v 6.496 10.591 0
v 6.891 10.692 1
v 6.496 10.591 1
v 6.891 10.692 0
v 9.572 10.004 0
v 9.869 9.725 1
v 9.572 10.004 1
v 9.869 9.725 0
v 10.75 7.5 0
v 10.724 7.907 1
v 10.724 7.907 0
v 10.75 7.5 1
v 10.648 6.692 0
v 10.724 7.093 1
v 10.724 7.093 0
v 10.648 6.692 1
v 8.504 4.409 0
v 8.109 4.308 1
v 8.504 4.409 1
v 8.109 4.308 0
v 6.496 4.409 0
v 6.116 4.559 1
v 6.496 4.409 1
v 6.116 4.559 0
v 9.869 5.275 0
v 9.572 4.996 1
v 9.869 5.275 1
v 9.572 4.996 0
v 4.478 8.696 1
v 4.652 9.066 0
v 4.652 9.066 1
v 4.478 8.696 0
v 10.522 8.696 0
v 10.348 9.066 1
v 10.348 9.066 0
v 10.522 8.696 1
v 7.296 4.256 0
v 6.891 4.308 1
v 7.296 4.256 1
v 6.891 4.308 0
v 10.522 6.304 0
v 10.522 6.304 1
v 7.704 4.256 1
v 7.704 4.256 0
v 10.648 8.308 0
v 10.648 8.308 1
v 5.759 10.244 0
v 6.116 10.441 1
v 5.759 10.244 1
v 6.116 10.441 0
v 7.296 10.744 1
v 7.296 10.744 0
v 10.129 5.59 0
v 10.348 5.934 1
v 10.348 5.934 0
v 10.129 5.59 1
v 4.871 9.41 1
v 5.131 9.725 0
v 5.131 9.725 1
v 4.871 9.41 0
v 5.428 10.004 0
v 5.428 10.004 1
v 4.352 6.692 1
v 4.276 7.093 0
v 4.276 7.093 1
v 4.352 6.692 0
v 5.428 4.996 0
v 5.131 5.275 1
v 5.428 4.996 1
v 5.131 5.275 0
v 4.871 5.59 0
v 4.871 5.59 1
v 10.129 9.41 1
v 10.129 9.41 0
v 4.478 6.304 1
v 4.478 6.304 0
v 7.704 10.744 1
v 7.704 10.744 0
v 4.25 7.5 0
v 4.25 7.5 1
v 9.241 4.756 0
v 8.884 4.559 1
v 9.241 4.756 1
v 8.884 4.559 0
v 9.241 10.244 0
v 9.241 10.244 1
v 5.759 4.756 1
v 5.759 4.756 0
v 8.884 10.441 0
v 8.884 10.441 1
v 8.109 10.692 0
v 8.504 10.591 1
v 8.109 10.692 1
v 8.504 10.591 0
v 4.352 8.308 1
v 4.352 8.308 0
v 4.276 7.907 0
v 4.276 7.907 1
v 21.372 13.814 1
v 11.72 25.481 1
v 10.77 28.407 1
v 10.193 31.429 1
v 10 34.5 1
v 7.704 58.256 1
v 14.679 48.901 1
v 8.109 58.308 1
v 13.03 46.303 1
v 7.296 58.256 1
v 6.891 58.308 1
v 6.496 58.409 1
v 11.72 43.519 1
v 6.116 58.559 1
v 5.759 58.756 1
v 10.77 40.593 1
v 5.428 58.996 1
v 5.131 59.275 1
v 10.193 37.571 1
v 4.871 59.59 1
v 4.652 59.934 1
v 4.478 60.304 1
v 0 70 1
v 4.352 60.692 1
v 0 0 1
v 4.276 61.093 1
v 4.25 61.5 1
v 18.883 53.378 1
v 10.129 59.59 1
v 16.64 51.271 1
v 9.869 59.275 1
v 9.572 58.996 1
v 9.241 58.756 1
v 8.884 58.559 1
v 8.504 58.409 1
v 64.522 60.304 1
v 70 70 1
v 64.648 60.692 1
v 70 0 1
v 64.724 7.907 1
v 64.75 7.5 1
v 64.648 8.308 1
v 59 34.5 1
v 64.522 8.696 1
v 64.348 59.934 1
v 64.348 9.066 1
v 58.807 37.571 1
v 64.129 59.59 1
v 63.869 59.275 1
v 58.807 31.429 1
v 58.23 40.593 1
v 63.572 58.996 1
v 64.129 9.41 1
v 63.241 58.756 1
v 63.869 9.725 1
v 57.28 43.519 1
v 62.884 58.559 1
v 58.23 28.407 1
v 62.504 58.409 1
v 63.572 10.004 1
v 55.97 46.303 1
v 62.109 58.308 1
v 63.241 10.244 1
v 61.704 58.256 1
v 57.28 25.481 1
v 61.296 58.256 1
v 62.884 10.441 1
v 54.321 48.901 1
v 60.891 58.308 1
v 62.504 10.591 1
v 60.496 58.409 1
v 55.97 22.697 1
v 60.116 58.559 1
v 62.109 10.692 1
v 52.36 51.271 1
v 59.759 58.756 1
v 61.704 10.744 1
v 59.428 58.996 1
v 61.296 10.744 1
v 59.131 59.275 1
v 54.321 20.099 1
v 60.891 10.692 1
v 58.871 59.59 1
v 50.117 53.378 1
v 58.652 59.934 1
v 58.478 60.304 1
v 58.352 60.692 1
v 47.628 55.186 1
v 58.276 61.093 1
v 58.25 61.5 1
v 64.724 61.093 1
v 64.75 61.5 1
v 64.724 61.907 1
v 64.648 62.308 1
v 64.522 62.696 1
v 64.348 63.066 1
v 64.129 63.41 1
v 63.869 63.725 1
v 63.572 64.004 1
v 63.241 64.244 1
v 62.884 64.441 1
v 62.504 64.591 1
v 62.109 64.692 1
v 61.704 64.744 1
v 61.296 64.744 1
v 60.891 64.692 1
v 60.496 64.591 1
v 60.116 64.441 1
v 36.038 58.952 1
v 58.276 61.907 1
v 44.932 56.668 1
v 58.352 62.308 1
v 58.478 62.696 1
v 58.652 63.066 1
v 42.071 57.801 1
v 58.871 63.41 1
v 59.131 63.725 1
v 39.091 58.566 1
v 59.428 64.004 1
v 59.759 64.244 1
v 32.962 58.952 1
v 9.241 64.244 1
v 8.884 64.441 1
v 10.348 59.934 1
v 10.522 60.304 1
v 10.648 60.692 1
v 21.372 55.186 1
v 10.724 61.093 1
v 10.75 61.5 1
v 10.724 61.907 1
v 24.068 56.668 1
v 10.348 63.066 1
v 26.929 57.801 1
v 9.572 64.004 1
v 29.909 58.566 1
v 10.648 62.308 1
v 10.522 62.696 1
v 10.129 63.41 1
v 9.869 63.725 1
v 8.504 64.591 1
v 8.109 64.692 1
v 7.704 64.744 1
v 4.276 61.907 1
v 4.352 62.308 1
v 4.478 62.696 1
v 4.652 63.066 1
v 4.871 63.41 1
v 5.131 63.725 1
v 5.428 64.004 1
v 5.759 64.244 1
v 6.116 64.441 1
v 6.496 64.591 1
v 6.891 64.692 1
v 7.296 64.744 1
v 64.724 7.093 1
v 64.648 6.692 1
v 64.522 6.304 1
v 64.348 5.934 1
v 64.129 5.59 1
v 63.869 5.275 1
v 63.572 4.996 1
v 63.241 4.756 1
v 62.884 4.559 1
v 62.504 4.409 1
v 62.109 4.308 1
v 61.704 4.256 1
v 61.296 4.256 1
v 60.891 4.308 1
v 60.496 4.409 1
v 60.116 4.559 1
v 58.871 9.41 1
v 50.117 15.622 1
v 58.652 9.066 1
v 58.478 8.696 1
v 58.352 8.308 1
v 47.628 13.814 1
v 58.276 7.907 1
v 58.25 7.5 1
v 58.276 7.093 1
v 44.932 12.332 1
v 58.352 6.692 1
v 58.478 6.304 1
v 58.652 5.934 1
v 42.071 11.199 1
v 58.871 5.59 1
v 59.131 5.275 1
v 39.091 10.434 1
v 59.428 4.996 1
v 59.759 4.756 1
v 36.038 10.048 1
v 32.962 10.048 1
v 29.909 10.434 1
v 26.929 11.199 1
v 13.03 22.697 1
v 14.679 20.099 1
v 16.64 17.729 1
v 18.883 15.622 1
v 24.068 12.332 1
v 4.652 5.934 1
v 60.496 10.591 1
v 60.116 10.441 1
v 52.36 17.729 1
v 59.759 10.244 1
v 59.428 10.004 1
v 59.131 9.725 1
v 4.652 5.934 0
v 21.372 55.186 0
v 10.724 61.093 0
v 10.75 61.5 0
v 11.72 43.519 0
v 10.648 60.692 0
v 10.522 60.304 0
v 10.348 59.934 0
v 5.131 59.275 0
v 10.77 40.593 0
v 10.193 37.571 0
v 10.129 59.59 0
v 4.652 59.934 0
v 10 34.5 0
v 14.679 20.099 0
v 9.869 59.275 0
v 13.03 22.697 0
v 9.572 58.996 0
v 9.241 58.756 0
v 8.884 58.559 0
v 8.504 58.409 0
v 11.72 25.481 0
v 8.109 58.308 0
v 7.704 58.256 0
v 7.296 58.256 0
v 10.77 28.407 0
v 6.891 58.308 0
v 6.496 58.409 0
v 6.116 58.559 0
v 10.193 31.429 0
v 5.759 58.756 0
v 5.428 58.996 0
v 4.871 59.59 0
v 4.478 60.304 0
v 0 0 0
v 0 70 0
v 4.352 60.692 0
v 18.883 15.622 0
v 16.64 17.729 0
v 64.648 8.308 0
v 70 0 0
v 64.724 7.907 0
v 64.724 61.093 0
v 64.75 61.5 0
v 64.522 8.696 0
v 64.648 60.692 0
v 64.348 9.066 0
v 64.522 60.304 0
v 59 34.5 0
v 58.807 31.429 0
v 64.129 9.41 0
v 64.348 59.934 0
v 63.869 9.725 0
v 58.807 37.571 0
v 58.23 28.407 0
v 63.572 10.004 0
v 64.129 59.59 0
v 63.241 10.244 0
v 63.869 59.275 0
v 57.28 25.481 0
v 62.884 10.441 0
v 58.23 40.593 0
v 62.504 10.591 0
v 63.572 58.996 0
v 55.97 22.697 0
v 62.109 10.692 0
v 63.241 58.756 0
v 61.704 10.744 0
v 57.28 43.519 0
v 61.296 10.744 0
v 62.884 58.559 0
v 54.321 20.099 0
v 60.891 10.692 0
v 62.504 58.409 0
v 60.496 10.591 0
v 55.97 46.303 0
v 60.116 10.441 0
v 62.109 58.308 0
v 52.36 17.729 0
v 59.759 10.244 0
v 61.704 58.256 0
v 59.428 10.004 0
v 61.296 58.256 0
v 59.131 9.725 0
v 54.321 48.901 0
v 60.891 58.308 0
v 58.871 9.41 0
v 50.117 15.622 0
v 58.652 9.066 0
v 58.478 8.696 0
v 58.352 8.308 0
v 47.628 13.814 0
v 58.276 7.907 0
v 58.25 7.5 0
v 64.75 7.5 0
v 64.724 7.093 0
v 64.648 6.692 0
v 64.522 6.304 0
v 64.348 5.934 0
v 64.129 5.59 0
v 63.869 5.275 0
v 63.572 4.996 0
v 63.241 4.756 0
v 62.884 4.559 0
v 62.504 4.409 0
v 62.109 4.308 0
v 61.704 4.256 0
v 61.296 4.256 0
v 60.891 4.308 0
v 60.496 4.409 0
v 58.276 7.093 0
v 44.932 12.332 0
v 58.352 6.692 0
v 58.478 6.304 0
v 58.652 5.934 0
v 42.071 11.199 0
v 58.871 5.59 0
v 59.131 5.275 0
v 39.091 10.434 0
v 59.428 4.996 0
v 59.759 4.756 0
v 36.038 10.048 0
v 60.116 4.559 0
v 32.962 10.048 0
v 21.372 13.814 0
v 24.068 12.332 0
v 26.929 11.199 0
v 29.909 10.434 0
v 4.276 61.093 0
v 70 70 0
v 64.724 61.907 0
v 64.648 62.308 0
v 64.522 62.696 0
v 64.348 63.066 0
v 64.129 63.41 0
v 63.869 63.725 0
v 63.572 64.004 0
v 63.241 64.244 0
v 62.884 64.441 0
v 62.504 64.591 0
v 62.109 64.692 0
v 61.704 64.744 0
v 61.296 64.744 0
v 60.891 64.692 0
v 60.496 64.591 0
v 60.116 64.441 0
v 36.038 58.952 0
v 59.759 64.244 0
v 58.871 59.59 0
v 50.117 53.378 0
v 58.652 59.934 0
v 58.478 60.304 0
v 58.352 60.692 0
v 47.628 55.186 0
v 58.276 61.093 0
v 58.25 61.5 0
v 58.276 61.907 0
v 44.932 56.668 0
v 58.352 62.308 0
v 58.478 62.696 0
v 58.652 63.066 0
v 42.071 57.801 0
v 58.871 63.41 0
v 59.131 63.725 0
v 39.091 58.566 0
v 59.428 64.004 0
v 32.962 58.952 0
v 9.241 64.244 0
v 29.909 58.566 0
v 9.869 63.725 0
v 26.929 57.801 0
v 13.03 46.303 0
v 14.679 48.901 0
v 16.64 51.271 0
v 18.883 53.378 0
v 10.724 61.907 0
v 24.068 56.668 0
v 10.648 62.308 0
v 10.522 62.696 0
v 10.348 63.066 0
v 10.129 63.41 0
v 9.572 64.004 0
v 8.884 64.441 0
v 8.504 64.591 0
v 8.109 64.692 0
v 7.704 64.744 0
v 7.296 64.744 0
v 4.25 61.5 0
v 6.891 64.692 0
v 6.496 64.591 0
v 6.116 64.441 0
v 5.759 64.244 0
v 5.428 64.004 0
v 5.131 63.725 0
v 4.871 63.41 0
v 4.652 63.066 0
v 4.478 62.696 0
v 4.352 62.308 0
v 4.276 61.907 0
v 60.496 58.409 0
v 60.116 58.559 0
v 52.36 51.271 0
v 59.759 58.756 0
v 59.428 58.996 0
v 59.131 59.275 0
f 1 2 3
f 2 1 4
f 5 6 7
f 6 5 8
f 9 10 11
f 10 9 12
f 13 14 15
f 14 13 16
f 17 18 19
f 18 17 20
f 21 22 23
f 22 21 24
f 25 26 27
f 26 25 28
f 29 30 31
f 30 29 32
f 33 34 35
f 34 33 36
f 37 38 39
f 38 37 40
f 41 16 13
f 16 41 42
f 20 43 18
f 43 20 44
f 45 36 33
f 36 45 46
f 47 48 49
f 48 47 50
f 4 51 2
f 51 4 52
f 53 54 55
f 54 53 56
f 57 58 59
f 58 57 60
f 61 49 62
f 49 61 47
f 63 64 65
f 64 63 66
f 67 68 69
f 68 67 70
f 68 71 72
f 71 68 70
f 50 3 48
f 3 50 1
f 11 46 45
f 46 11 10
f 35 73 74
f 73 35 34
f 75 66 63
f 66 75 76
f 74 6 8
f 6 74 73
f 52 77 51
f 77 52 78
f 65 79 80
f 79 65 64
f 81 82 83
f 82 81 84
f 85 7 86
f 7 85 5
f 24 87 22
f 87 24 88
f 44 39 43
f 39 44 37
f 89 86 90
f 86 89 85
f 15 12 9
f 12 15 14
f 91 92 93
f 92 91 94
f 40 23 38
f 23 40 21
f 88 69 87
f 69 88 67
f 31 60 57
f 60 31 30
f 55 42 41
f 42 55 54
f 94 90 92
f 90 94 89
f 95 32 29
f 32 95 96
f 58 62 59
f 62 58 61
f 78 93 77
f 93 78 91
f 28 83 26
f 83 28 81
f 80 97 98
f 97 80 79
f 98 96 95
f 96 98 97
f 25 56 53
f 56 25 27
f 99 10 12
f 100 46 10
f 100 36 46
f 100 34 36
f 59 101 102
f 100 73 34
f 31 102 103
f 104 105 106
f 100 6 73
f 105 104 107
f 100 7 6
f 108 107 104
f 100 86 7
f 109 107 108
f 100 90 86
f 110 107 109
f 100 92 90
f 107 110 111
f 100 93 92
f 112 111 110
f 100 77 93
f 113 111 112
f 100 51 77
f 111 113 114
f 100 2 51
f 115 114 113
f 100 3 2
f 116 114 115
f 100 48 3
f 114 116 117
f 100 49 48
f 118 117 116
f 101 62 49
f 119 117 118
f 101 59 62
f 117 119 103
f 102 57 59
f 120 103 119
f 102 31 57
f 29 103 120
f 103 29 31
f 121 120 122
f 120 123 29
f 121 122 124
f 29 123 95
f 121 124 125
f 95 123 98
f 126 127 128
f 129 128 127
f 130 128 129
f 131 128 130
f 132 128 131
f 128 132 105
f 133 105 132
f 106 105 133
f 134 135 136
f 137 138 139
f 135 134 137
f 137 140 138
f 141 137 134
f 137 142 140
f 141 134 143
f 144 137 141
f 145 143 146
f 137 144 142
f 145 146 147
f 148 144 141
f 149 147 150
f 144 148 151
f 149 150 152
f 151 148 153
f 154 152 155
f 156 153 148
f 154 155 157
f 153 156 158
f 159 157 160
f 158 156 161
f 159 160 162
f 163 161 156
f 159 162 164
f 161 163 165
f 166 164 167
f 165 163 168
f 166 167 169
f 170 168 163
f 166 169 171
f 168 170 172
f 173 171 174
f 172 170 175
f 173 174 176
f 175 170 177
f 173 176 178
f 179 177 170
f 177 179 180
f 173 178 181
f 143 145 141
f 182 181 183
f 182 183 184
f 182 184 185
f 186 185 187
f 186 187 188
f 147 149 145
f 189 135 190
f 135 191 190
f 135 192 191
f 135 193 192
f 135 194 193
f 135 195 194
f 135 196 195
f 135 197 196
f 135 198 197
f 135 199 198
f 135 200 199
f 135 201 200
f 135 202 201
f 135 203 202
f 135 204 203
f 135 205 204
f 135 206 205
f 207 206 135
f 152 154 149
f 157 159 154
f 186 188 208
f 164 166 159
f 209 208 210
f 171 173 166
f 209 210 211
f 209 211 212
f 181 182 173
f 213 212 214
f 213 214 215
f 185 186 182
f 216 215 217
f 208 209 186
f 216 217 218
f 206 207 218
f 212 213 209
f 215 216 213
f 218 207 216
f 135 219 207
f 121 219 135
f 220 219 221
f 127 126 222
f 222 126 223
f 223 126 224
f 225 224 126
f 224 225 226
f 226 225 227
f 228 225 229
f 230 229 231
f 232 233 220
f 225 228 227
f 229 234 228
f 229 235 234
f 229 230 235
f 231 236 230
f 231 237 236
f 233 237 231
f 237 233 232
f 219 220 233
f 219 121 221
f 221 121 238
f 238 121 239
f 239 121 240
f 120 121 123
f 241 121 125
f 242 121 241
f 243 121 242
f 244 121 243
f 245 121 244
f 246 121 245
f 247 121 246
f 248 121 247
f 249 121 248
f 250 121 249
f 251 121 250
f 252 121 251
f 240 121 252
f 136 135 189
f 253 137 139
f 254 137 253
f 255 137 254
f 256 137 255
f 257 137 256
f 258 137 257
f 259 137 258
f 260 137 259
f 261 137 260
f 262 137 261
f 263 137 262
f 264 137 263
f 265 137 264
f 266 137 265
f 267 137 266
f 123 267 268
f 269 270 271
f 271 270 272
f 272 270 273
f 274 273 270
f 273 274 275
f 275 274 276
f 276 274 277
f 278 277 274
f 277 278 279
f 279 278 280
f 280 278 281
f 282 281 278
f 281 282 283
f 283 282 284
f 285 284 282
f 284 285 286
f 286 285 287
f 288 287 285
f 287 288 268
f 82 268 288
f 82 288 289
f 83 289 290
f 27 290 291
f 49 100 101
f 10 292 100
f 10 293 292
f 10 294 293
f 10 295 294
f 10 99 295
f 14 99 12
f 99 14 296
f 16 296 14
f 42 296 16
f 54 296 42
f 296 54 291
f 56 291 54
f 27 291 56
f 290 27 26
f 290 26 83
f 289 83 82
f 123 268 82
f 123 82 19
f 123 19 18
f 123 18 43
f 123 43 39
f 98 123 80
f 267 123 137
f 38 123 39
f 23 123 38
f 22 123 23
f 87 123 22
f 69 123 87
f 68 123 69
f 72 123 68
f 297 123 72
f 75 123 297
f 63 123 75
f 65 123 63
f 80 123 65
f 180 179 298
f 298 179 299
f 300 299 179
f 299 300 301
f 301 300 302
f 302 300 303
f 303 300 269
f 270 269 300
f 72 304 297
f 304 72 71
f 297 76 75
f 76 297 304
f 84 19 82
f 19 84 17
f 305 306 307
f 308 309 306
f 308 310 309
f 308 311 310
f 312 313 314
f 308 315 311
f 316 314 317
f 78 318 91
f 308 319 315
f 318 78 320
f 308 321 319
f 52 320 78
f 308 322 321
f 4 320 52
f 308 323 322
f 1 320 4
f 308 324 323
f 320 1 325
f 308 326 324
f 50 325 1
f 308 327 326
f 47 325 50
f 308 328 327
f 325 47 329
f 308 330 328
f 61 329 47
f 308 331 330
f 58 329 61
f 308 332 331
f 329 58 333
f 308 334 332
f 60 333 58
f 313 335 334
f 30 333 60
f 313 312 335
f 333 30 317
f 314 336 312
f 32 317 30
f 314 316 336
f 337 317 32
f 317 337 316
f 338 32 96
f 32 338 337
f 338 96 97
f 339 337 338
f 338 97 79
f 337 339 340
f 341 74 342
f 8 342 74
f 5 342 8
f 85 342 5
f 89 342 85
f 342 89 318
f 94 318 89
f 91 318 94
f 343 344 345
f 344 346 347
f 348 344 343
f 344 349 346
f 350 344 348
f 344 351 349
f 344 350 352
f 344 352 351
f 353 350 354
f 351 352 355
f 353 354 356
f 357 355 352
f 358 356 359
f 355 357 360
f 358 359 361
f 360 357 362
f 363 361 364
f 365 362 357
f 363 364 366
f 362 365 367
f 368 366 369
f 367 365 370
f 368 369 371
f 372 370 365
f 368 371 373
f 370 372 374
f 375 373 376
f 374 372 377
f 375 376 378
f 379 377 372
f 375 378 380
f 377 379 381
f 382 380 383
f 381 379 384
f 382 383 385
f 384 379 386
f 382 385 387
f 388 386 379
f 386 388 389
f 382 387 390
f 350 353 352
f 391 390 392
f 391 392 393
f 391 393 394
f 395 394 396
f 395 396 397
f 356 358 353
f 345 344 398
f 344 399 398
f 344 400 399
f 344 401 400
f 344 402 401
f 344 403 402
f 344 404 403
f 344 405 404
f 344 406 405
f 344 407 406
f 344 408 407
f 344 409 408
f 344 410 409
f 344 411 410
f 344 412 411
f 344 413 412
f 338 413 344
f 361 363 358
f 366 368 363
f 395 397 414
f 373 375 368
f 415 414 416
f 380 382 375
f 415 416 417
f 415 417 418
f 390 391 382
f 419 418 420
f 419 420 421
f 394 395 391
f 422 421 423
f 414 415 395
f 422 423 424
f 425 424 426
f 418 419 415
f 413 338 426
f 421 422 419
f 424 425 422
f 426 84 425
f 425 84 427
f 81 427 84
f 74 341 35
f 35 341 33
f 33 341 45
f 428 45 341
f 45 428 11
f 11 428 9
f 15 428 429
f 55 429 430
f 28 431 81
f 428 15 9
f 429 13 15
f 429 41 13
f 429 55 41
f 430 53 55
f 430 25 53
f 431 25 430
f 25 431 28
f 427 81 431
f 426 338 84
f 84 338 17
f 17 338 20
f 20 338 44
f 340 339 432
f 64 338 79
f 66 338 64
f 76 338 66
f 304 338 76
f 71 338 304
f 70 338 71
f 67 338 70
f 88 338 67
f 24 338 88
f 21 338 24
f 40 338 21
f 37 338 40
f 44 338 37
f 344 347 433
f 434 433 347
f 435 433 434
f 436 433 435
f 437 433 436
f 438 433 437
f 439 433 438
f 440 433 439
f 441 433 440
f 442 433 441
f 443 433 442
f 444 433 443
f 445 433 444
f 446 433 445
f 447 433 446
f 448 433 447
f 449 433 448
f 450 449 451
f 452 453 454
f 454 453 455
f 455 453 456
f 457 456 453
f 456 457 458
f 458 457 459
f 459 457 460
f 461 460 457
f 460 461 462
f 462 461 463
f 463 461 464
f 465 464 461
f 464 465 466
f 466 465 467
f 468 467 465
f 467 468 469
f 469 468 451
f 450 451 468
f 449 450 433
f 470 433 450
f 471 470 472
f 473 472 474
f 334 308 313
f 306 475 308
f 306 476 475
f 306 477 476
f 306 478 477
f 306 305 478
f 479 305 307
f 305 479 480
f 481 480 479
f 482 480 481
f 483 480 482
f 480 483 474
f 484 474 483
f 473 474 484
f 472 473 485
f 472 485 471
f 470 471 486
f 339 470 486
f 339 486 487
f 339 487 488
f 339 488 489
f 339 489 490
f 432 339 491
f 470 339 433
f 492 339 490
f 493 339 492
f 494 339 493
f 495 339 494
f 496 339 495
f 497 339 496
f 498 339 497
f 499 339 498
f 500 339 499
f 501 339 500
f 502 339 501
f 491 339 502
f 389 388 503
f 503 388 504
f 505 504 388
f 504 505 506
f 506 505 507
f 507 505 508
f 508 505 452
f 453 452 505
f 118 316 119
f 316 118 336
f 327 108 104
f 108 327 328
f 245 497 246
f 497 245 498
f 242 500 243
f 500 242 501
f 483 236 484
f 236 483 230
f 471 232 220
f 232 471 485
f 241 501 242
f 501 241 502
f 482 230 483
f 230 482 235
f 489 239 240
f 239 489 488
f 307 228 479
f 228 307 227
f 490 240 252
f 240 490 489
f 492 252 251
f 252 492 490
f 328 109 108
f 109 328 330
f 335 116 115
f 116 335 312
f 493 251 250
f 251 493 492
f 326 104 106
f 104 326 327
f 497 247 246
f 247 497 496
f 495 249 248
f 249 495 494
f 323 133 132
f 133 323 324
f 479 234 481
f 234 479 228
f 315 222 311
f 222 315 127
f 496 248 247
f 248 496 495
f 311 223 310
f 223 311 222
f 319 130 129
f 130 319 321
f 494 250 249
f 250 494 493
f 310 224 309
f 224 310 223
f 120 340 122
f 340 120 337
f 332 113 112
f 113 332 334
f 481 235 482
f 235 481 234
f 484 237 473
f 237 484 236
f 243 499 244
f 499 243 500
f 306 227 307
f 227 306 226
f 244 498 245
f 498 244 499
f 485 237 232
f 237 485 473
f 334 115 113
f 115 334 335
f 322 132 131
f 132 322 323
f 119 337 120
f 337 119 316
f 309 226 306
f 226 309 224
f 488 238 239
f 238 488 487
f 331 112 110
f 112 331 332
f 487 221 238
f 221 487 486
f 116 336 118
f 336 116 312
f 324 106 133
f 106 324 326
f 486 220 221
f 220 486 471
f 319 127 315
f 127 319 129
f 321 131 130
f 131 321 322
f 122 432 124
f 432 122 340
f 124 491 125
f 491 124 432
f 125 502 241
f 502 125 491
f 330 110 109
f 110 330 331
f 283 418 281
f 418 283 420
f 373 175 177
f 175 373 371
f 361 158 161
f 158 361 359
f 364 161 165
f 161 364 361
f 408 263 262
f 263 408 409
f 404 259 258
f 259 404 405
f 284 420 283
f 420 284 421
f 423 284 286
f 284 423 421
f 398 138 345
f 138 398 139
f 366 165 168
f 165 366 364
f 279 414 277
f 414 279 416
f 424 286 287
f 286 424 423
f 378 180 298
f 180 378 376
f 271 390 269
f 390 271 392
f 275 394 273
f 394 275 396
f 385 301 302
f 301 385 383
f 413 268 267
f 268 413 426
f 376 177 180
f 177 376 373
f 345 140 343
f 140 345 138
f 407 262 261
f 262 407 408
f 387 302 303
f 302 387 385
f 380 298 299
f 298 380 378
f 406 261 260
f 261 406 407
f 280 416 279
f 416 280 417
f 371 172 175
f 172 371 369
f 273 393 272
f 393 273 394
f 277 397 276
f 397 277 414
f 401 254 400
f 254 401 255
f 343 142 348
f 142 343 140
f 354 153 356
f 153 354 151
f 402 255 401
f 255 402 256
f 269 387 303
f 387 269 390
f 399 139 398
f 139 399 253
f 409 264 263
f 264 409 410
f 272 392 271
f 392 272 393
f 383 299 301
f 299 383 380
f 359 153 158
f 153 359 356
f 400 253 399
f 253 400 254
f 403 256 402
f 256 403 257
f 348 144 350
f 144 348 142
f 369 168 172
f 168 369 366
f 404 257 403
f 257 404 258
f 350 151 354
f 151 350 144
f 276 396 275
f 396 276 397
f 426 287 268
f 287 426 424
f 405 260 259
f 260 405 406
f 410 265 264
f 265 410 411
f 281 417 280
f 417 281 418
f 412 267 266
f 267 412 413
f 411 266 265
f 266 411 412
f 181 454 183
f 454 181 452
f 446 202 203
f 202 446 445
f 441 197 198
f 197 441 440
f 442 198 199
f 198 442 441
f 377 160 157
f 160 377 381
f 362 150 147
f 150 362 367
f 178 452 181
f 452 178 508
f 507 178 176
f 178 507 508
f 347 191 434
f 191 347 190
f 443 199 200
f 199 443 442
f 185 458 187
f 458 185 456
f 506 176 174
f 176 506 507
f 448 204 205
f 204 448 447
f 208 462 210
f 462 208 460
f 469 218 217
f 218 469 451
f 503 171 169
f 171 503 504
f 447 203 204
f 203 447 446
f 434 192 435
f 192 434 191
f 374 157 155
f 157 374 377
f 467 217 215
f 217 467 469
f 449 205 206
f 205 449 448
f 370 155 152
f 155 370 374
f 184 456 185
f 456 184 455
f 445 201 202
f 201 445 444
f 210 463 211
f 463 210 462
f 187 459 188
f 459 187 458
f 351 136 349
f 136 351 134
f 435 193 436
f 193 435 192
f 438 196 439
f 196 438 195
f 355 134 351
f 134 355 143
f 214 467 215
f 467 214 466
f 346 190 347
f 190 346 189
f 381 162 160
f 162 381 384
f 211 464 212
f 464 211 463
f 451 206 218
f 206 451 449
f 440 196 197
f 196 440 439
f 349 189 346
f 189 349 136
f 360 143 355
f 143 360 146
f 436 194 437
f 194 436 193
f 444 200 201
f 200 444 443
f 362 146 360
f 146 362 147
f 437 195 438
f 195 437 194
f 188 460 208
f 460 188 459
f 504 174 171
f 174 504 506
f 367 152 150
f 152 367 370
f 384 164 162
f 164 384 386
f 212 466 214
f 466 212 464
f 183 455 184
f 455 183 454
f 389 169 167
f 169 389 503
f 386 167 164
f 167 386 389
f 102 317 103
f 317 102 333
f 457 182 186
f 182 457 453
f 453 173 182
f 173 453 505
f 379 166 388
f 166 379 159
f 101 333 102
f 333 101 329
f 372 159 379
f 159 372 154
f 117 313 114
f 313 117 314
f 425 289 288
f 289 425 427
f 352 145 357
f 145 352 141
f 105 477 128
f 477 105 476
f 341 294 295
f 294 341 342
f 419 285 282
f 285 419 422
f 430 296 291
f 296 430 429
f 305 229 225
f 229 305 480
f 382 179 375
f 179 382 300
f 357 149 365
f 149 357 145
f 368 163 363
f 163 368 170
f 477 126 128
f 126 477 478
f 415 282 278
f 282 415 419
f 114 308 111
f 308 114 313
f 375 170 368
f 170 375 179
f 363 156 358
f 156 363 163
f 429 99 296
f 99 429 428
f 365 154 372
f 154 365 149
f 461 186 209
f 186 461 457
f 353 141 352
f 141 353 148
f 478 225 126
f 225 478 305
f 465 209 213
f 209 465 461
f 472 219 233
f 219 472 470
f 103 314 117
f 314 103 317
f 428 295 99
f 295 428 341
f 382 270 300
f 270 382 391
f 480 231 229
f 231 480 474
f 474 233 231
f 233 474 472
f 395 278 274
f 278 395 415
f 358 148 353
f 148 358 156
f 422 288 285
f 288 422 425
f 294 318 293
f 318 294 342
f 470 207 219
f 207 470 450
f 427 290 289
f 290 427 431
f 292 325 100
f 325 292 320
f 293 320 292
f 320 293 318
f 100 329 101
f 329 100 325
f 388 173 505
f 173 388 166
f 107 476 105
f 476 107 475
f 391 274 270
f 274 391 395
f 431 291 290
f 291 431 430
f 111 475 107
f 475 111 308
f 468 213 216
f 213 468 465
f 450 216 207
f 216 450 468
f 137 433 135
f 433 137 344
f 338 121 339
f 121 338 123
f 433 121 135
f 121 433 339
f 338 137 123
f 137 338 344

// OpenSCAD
$fn=50;
module top() {
    difference() {
        cube([70,70,1]);
        translate([49/2+10,49/2+10,0]) holes();
    }
}

module holes() {
    cylinder(1, d=49);
    for (i=[-1,1], j=[-1,1]) {
        echo(i,j);
        #translate([27*i,27*j,0]) cylinder(1, d=6.5);
    }
}

top();
